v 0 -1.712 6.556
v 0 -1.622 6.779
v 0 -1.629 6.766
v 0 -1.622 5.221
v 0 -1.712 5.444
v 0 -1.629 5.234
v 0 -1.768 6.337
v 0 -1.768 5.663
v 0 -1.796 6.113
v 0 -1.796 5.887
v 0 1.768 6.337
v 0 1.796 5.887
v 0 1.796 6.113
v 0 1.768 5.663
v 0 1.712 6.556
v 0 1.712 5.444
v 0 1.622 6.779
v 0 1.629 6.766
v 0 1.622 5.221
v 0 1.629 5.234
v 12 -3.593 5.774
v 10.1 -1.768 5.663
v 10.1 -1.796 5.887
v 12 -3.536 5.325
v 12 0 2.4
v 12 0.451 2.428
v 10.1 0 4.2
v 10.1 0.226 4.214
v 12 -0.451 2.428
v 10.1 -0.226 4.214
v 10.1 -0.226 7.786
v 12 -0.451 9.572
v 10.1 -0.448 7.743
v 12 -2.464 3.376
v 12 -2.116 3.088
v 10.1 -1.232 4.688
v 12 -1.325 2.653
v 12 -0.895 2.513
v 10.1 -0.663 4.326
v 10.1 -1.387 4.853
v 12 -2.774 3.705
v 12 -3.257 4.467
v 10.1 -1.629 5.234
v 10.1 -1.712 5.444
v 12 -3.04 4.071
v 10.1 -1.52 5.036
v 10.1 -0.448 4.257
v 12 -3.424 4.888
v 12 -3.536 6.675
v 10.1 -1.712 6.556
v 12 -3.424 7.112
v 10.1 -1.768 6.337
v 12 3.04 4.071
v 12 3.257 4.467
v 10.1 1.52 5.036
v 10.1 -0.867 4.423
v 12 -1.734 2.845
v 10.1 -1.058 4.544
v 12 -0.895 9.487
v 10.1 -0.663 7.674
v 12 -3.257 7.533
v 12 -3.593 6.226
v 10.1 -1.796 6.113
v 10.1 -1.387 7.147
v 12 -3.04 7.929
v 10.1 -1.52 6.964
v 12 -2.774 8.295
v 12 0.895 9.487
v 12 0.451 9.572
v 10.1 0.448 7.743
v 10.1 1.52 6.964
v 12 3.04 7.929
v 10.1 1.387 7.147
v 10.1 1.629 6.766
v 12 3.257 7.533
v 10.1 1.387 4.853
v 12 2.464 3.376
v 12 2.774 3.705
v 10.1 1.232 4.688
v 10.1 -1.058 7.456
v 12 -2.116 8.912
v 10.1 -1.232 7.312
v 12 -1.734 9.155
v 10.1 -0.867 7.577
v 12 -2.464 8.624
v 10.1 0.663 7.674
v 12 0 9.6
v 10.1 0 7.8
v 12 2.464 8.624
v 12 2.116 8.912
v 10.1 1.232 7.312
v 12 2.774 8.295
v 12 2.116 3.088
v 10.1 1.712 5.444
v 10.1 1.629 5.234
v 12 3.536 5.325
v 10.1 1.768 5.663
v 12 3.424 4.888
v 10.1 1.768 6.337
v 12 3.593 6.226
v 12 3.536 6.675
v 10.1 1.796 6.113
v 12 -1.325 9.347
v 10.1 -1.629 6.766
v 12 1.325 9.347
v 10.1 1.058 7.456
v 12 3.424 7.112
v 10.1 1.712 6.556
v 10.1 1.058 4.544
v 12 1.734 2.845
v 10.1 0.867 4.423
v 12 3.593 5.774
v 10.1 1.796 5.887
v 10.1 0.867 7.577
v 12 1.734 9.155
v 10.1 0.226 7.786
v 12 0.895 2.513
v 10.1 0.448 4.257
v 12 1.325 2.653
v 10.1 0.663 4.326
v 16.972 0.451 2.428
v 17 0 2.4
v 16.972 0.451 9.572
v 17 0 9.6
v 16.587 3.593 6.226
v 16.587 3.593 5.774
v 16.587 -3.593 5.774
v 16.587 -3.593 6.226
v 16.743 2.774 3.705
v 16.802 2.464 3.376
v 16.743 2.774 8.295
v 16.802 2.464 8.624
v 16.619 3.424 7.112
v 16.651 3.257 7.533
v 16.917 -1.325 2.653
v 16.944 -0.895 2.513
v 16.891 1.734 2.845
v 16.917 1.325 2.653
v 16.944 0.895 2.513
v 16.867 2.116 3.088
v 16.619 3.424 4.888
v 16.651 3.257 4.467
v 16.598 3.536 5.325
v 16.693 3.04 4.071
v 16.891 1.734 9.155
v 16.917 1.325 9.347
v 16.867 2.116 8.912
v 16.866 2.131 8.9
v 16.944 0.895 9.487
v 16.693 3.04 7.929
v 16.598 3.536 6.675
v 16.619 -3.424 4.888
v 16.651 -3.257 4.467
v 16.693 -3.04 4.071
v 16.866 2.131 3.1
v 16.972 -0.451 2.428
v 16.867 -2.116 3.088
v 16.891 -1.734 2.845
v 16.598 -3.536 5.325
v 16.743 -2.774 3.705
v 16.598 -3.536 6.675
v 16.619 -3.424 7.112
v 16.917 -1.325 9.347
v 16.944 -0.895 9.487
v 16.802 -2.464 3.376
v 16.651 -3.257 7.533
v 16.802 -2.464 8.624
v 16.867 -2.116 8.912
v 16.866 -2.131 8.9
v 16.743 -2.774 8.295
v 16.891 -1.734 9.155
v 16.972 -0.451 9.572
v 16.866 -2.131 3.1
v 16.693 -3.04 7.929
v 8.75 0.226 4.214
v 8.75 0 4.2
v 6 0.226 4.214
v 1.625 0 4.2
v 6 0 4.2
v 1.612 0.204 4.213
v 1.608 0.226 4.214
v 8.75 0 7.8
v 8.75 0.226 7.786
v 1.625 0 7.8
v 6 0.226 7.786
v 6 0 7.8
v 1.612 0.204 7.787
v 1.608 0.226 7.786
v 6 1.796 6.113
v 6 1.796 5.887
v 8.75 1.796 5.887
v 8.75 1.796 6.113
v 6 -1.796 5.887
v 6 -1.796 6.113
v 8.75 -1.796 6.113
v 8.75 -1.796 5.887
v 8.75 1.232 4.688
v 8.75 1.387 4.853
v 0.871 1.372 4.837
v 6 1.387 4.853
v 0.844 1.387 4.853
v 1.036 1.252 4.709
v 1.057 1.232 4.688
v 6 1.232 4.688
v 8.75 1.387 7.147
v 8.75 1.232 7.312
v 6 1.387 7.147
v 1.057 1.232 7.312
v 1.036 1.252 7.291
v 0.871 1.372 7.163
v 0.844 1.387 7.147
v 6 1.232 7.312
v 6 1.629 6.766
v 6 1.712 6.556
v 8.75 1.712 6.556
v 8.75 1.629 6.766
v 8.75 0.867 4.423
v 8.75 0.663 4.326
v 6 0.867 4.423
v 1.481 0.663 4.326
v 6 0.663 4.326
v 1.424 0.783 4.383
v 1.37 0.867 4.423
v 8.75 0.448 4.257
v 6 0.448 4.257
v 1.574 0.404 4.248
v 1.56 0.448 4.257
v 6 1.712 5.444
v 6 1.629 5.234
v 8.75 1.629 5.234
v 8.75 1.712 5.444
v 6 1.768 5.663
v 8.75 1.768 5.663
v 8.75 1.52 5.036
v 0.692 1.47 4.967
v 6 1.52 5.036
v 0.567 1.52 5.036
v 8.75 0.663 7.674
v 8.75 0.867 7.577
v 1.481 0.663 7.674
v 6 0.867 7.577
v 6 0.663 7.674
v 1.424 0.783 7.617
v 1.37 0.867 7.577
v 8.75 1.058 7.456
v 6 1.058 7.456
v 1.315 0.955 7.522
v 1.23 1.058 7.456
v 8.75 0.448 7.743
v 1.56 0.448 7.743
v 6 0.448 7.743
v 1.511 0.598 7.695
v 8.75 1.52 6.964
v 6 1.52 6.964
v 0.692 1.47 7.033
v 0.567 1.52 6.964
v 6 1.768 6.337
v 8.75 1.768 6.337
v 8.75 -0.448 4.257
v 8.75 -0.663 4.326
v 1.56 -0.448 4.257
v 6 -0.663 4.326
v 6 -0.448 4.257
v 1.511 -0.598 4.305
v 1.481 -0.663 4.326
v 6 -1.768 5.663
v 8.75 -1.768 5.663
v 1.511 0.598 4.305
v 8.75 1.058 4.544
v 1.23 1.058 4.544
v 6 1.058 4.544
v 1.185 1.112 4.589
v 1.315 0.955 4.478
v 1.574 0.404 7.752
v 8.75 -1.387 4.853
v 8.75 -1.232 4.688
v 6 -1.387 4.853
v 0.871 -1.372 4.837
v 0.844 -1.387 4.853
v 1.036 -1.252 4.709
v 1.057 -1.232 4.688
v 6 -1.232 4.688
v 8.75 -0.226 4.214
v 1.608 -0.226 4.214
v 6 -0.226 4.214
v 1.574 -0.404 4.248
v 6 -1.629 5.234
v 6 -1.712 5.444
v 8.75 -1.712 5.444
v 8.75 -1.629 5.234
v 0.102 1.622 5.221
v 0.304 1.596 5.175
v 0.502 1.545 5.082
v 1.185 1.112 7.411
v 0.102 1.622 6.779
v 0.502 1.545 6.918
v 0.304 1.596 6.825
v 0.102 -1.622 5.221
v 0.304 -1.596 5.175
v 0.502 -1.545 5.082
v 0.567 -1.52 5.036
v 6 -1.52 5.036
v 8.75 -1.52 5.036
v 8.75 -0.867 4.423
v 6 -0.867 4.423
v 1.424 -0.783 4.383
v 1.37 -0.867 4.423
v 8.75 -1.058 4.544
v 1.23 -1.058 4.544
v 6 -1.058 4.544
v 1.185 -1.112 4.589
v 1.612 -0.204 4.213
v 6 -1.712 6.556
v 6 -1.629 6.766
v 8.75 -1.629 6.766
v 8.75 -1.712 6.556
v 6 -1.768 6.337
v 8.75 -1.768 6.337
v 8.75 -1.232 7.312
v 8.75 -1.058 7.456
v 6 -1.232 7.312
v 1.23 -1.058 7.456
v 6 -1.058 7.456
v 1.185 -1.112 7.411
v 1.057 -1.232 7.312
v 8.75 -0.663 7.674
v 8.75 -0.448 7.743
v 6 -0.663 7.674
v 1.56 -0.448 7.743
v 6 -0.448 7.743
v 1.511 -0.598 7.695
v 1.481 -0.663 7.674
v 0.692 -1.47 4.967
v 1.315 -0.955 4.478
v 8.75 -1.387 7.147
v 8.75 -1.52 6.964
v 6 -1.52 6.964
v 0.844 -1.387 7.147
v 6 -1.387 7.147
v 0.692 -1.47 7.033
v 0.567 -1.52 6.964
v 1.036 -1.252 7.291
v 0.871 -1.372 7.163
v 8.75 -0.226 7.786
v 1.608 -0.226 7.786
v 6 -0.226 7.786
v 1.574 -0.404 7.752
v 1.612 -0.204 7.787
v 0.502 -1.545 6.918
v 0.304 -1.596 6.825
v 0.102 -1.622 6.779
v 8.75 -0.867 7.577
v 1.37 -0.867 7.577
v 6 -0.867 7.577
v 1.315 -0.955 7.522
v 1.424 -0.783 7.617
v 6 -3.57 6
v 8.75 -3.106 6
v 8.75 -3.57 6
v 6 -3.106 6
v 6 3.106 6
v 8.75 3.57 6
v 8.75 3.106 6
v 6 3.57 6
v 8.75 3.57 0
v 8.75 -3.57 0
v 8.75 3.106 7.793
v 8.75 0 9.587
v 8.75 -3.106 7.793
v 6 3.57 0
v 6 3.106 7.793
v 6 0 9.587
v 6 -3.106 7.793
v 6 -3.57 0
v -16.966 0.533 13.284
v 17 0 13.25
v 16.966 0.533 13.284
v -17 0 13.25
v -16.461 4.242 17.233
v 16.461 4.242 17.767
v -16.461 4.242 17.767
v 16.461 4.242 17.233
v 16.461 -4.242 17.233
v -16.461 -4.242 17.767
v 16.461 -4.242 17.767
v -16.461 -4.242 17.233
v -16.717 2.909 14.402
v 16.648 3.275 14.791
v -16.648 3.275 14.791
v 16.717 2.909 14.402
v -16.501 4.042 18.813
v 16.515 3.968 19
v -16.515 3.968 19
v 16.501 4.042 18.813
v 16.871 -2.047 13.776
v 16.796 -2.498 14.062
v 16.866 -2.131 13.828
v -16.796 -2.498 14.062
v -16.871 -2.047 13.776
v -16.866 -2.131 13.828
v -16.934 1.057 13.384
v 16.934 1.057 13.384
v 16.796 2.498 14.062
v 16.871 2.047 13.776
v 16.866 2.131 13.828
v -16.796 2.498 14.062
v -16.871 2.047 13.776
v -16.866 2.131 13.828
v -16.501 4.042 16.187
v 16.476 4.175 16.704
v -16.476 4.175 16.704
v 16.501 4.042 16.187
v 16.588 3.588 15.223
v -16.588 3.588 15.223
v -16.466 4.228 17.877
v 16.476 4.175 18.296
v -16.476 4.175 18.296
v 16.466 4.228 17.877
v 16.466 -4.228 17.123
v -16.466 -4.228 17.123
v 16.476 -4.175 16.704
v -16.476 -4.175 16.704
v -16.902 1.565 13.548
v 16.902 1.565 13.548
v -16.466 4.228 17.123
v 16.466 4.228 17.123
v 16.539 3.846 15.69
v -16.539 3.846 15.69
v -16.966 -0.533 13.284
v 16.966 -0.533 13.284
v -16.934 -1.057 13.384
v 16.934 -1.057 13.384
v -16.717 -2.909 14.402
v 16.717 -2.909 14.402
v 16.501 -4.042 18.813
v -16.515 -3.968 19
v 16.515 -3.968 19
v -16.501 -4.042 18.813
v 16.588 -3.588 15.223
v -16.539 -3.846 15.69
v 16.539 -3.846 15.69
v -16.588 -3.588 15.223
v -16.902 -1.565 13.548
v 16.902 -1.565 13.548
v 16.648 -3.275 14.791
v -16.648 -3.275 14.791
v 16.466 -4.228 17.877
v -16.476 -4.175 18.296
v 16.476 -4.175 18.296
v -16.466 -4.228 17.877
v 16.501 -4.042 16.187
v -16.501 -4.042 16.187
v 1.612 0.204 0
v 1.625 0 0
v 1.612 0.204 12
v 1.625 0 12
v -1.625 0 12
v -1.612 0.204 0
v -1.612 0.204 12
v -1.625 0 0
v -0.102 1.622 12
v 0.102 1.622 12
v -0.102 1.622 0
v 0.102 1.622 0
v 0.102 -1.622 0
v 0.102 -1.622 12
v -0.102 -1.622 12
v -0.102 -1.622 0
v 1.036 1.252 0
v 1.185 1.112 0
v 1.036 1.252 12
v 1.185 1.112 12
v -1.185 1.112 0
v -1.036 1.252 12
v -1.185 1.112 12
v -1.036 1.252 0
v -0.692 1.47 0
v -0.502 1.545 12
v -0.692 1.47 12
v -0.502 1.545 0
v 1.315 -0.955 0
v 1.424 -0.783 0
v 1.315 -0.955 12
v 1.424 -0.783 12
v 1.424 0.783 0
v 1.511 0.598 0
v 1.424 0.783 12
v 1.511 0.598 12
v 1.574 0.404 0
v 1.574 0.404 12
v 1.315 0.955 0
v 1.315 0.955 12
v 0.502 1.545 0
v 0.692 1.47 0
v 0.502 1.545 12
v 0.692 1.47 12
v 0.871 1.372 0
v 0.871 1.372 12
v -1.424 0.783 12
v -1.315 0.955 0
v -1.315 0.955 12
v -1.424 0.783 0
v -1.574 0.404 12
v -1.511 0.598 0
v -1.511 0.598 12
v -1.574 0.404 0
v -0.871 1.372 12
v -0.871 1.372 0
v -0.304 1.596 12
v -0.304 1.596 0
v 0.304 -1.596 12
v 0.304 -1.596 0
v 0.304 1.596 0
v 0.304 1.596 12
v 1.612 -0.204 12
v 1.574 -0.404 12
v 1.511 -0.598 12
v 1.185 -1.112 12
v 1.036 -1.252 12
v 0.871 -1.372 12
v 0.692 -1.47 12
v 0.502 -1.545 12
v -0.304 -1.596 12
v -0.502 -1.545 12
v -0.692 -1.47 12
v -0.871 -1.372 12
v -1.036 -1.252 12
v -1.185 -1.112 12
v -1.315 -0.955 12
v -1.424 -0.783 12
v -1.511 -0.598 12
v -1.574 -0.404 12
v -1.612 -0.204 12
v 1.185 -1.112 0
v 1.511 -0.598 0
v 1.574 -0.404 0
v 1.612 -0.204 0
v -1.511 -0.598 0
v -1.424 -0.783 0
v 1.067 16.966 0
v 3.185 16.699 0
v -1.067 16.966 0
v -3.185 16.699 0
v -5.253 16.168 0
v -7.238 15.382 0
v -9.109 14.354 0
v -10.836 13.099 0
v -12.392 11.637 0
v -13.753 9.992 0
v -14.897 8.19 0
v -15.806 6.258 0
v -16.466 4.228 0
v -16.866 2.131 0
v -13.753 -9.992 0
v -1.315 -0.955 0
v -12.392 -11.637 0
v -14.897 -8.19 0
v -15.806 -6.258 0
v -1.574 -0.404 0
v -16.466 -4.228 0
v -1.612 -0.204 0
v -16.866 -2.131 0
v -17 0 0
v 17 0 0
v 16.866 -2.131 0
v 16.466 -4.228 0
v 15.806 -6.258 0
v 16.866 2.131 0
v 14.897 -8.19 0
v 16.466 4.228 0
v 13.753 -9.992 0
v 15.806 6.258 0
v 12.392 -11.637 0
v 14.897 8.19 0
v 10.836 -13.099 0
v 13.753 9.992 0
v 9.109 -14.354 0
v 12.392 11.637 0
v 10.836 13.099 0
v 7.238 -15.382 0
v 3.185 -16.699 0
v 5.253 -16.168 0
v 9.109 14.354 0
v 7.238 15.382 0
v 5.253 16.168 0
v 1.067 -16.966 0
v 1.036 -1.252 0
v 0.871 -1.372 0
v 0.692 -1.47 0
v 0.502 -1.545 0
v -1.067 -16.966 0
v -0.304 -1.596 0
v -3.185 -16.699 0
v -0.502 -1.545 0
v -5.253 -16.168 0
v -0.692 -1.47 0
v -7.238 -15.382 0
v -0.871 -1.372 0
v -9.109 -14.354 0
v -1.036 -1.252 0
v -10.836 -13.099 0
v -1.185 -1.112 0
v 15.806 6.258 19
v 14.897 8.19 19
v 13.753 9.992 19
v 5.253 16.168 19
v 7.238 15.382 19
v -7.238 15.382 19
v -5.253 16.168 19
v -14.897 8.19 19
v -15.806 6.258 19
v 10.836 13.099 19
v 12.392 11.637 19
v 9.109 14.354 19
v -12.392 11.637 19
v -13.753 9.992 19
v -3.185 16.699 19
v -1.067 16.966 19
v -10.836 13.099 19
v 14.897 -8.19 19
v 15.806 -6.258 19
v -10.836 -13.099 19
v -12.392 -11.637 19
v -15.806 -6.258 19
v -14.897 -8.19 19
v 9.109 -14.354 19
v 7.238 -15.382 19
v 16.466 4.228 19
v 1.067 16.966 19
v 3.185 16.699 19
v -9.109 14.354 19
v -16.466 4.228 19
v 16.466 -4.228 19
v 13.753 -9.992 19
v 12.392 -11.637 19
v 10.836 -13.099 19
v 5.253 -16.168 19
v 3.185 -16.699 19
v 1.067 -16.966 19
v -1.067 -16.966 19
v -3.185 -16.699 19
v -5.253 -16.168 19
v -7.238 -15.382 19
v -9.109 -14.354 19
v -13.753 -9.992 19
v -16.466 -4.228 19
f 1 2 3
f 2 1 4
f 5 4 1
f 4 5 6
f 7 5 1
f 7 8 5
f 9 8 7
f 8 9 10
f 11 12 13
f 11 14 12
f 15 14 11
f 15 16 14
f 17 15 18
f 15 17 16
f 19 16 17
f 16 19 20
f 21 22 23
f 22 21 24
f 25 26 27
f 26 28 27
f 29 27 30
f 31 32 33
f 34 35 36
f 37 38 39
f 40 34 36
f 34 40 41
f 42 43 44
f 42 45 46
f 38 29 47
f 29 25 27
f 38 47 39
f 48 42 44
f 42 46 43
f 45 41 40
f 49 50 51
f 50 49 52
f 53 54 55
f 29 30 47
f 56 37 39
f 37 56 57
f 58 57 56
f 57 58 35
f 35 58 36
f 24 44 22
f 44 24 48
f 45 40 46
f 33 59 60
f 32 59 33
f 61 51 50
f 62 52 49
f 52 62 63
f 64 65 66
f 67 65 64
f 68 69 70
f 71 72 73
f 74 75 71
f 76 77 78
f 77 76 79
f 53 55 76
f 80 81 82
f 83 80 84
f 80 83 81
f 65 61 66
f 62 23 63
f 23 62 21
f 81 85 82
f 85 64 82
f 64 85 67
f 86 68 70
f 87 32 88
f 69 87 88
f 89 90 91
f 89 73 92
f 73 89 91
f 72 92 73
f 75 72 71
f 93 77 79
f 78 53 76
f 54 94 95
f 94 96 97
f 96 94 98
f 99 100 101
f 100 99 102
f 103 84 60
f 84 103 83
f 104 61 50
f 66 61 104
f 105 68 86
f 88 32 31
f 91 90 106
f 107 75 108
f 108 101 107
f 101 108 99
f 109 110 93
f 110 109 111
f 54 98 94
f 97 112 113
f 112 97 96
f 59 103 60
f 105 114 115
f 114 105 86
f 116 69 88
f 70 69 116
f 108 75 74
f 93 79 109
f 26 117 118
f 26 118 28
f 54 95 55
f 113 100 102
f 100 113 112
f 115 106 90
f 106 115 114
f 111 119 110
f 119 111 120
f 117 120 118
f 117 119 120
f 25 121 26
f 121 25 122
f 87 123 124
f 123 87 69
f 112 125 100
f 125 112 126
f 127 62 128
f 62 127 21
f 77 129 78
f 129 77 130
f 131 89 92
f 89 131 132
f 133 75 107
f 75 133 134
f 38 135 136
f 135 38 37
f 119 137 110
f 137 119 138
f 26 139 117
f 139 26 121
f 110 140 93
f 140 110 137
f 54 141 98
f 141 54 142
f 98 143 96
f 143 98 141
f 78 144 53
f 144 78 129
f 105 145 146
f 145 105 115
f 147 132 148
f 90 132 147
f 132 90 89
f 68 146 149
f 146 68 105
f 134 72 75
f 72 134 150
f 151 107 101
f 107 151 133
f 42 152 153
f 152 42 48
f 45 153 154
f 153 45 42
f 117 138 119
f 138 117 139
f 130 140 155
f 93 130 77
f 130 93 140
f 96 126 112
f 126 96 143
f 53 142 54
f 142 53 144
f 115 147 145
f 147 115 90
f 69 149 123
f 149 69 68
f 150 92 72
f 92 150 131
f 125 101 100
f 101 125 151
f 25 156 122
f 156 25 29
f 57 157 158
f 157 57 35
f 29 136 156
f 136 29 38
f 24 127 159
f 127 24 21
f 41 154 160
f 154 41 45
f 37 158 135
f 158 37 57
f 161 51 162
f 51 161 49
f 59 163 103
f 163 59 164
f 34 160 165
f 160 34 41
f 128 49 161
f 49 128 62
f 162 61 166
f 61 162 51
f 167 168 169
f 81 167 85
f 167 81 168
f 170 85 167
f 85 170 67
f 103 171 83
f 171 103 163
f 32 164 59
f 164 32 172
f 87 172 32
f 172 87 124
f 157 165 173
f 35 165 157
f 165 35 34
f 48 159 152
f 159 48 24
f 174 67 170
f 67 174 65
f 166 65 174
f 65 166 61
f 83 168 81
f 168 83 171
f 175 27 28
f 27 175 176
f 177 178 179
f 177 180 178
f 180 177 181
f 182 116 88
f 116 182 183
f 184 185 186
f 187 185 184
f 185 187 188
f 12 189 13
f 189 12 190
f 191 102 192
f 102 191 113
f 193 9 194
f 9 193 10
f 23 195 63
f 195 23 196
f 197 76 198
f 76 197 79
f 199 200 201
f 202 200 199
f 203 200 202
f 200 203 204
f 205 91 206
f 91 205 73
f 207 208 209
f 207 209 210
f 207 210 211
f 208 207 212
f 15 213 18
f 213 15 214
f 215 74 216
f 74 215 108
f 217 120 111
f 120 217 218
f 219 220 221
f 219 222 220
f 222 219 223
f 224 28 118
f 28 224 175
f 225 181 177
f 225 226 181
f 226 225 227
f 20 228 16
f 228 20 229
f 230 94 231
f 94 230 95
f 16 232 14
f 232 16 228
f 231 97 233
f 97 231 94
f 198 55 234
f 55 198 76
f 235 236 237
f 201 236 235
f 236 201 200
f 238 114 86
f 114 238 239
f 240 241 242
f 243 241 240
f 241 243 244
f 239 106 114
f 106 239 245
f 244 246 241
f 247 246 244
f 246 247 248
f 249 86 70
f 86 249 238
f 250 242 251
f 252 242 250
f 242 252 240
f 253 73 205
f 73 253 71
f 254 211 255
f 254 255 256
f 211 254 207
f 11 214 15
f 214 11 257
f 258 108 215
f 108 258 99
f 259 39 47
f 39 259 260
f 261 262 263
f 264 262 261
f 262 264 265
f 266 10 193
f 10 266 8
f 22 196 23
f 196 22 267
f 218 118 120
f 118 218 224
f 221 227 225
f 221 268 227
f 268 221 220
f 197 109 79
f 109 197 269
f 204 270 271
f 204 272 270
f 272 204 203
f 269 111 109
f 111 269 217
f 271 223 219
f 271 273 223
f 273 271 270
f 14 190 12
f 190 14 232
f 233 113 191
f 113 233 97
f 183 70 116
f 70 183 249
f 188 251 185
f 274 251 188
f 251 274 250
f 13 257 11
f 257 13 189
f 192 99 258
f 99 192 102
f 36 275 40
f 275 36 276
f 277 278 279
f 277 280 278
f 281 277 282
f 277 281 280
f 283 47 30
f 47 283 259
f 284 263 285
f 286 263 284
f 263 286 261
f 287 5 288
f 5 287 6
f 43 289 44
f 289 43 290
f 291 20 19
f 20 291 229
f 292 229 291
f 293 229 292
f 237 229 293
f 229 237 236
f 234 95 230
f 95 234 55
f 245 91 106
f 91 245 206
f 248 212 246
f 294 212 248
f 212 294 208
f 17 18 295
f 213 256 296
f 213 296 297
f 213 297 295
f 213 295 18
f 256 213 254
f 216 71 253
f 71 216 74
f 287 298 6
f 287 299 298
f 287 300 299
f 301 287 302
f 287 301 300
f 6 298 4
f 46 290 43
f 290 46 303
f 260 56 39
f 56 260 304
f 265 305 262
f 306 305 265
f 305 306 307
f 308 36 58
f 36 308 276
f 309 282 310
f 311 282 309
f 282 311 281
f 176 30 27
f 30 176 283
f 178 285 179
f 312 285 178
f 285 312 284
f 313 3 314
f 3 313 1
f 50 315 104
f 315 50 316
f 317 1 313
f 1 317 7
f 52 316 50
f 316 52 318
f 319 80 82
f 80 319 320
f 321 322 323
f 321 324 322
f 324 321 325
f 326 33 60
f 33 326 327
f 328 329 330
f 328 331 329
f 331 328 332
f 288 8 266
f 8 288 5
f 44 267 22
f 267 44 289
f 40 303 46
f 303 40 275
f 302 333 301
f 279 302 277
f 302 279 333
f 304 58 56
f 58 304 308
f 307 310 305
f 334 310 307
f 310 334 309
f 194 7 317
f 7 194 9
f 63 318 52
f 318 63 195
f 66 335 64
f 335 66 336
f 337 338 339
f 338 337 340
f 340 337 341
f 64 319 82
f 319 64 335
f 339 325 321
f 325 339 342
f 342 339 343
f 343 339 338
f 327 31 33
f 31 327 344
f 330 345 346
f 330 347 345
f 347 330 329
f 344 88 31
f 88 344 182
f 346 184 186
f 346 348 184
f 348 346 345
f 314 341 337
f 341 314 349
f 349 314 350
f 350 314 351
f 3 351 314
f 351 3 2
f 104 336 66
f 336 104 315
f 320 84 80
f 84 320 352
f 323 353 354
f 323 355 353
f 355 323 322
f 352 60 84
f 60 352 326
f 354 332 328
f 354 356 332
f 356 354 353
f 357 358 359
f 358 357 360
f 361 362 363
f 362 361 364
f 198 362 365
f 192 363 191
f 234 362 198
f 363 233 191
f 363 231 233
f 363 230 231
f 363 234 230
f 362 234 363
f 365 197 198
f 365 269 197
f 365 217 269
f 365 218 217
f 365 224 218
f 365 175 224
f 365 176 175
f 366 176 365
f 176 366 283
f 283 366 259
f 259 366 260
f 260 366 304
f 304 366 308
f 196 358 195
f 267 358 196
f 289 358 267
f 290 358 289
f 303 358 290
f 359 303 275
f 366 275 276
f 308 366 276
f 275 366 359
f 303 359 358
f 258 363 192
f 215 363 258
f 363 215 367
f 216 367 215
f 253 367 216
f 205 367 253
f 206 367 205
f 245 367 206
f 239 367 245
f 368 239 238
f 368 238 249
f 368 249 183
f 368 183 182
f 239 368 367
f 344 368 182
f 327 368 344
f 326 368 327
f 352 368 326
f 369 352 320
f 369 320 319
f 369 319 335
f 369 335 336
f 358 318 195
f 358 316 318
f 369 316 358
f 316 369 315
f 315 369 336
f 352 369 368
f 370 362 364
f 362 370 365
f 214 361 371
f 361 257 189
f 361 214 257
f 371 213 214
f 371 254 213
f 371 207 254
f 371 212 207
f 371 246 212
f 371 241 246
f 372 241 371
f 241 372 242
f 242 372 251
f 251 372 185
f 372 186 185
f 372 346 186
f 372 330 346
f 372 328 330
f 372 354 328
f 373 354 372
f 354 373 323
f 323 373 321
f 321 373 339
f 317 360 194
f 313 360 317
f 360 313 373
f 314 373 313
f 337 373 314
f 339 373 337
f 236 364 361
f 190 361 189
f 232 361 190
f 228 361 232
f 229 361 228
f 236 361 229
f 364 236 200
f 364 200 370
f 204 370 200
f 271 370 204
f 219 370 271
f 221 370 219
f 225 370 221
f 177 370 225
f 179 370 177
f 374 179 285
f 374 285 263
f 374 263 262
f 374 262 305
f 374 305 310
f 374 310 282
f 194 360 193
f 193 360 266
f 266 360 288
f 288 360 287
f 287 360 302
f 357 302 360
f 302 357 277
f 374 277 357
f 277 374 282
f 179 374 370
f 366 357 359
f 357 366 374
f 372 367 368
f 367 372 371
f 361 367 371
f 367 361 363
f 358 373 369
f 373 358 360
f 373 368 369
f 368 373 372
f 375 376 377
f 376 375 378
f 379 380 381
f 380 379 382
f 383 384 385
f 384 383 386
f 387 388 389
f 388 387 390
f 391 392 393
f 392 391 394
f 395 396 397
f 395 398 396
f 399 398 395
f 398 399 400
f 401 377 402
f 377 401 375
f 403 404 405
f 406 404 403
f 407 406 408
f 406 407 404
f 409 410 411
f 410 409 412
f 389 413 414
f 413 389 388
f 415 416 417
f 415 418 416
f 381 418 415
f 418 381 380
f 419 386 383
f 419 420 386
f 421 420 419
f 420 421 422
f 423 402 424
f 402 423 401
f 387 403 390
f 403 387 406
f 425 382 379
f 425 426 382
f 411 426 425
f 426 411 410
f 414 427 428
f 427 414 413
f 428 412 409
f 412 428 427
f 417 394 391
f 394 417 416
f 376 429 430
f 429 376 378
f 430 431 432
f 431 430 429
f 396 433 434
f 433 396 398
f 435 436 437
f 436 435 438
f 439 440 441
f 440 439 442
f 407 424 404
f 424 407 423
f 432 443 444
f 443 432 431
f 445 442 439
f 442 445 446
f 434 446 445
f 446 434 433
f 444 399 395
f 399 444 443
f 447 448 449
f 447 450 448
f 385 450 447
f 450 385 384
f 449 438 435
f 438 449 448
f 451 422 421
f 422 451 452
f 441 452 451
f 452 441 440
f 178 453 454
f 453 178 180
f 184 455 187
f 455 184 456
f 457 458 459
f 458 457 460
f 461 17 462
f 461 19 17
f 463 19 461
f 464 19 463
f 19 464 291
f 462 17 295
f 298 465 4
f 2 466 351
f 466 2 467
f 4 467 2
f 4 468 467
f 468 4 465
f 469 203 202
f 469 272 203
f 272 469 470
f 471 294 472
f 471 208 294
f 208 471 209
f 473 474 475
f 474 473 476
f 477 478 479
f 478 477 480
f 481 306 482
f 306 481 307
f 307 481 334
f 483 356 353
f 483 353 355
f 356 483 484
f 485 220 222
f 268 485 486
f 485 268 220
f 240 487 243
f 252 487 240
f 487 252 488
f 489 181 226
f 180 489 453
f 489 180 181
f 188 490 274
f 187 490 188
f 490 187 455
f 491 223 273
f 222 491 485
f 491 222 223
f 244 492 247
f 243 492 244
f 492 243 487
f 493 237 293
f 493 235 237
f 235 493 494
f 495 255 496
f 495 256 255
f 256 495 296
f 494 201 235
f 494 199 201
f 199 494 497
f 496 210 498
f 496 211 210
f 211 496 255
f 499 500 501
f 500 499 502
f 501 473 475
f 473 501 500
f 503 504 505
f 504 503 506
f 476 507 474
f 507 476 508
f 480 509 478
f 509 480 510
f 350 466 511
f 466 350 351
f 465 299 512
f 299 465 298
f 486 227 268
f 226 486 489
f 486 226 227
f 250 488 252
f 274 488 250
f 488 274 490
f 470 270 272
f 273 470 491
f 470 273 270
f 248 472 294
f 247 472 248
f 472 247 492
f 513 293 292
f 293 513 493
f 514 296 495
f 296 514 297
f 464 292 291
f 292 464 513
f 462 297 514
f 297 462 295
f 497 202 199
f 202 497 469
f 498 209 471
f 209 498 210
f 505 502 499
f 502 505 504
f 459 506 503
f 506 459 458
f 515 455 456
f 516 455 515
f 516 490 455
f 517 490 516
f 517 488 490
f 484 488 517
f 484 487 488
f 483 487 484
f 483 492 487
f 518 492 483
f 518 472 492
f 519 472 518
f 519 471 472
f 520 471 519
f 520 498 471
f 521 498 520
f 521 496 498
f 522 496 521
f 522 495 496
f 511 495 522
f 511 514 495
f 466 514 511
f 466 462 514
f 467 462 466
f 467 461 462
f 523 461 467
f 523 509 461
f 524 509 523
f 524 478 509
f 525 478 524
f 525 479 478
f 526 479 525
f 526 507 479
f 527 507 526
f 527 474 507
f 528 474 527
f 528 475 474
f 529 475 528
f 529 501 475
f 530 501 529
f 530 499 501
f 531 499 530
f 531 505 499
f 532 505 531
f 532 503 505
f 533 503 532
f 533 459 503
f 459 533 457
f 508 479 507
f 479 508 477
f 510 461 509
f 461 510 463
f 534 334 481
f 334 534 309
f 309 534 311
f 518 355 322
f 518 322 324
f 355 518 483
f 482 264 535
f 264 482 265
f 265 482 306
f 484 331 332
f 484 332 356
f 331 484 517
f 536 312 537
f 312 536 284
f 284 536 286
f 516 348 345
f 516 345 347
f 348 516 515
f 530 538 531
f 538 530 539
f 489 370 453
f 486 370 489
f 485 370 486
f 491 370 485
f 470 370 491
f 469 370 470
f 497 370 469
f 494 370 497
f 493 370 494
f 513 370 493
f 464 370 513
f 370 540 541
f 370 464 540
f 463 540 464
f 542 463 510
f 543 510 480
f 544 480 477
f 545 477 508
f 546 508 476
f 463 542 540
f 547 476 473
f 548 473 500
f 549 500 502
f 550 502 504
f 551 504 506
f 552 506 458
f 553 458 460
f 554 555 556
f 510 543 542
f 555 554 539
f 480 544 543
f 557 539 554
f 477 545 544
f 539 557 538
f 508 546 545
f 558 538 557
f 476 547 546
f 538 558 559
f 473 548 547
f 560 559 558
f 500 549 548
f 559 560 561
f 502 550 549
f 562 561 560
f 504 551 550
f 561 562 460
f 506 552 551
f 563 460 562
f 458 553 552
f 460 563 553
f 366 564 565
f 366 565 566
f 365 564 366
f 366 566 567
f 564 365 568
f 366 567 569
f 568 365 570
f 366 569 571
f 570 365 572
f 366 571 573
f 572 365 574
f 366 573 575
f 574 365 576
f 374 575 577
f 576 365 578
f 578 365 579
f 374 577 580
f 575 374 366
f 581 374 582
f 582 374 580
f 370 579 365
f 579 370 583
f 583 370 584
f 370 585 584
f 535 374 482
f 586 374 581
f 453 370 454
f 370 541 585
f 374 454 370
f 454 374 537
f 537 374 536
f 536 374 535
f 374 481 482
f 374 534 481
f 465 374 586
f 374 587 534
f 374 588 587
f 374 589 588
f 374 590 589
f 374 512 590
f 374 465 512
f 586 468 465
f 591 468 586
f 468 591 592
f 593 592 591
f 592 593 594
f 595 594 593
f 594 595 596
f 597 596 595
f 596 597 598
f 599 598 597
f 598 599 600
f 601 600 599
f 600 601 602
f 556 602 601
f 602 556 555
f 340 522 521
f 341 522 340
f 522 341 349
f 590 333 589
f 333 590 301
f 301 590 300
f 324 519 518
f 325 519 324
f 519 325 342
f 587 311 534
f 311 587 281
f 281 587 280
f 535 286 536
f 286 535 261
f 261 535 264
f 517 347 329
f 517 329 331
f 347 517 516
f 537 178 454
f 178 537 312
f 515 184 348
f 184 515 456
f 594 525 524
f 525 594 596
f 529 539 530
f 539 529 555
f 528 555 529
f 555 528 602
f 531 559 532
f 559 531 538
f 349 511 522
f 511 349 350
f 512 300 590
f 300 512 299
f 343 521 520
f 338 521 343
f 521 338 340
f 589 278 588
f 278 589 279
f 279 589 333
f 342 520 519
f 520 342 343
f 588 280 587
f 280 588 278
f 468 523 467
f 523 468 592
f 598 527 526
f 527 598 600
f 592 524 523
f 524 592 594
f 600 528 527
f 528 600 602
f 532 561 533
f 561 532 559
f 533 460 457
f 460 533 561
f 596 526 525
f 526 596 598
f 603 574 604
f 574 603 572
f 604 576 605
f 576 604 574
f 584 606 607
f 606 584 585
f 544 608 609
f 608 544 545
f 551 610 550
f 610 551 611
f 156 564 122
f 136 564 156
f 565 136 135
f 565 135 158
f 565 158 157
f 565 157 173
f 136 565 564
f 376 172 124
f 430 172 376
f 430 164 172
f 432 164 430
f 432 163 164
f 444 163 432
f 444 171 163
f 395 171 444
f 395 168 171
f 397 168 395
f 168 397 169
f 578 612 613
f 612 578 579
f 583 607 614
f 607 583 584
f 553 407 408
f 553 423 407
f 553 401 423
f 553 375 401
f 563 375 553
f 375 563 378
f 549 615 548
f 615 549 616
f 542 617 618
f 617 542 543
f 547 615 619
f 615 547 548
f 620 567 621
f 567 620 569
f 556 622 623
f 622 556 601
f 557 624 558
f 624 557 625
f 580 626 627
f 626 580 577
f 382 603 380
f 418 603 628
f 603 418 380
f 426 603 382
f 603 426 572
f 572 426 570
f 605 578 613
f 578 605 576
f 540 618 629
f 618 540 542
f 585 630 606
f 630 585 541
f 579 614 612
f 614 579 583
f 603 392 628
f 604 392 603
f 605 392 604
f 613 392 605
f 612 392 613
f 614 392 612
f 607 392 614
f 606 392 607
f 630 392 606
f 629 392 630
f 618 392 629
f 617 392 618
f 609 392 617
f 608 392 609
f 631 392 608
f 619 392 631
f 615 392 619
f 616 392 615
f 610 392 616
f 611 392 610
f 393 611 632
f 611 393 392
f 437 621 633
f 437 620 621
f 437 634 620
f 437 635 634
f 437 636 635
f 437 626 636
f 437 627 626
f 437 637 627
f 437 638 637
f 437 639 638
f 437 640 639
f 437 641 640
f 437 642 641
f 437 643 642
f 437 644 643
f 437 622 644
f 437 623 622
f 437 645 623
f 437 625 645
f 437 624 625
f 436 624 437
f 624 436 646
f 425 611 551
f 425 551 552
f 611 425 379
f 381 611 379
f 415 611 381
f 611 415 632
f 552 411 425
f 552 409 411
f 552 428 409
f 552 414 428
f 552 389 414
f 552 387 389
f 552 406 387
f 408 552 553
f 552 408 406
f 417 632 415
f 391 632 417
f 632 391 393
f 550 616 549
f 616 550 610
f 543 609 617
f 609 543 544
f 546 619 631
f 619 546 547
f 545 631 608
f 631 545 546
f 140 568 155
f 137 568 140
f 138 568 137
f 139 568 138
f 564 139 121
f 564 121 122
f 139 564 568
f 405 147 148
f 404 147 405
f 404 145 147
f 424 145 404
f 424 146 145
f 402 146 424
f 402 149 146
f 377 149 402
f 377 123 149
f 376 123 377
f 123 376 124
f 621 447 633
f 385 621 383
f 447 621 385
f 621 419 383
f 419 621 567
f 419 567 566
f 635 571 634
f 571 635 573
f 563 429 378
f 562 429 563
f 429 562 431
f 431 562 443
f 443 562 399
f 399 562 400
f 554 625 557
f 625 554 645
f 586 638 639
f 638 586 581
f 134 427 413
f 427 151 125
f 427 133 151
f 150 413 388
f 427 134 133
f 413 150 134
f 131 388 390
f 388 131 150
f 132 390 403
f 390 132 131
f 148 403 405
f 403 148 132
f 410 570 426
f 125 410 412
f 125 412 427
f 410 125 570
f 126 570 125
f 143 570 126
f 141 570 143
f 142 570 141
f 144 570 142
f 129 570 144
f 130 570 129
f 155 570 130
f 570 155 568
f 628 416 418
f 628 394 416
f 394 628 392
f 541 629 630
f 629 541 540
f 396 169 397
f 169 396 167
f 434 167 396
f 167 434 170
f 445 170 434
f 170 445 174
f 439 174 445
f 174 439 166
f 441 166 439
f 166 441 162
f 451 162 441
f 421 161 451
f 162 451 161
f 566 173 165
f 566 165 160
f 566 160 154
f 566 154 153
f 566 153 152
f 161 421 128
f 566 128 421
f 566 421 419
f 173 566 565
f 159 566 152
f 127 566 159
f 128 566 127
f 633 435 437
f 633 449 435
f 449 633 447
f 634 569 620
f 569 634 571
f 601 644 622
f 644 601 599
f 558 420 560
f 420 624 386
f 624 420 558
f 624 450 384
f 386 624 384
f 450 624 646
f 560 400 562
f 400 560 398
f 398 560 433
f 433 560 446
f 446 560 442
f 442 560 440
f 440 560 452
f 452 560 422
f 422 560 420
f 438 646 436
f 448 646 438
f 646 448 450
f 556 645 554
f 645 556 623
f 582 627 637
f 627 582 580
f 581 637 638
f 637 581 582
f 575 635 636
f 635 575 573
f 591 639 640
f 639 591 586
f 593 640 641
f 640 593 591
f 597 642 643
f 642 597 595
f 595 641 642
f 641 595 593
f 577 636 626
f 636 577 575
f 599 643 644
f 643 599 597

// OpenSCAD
$fn = 50;


difference() {
	union() {
		cylinder(h = 19, r = 17.0000000000);
	}
	union() {
		translate(v = [12, 0, 6.0000000000]) {
			rotate(a = [0, 90, 0]) {
				difference() {
					union() {
						translate(v = [0, 0, -12.0000000000]) {
							cylinder(h = 12, r = 1.5000000000);
						}
						translate(v = [0, 0, -1.9000000000]) {
							cylinder(h = 1.9000000000, r1 = 1.8000000000, r2 = 3.6000000000);
						}
						cylinder(h = 250, r = 3.6000000000);
						translate(v = [0, 0, -12.0000000000]) {
							cylinder(h = 12, r = 1.8000000000);
						}
						translate(v = [0, 0, -12.0000000000]) {
							cylinder(h = 12, r = 1.5000000000);
						}
					}
					union();
				}
			}
		}
		translate(v = [6.0000000000, 0, 6.0000000000]) {
			rotate(a = [0, 90, 0]) {
				difference() {
					union() {
						translate(v = [0.0000000000, -3.5702500000, 0]) {
							cube(size = [20, 7.1405000000, 2.7500000000]);
						}
						linear_extrude(height = 2.7500000000) {
							polygon(points = [[3.5870000000, 0.0000000000], [1.7935000000, 3.1064331234], [-1.7935000000, 3.1064331234], [-3.5870000000, 0.0000000000], [-1.7935000000, -3.1064331234], [1.7935000000, -3.1064331234]]);
						}
					}
					union();
				}
			}
		}
		#translate(v = [-100.0000000000, 0, 17.5000000000]) {
			rotate(a = [0, 90, 0]) {
				cylinder(h = 200, r = 4.2500000000);
			}
		}
		cylinder(h = 12, r = 1.6250000000);
	}
}
